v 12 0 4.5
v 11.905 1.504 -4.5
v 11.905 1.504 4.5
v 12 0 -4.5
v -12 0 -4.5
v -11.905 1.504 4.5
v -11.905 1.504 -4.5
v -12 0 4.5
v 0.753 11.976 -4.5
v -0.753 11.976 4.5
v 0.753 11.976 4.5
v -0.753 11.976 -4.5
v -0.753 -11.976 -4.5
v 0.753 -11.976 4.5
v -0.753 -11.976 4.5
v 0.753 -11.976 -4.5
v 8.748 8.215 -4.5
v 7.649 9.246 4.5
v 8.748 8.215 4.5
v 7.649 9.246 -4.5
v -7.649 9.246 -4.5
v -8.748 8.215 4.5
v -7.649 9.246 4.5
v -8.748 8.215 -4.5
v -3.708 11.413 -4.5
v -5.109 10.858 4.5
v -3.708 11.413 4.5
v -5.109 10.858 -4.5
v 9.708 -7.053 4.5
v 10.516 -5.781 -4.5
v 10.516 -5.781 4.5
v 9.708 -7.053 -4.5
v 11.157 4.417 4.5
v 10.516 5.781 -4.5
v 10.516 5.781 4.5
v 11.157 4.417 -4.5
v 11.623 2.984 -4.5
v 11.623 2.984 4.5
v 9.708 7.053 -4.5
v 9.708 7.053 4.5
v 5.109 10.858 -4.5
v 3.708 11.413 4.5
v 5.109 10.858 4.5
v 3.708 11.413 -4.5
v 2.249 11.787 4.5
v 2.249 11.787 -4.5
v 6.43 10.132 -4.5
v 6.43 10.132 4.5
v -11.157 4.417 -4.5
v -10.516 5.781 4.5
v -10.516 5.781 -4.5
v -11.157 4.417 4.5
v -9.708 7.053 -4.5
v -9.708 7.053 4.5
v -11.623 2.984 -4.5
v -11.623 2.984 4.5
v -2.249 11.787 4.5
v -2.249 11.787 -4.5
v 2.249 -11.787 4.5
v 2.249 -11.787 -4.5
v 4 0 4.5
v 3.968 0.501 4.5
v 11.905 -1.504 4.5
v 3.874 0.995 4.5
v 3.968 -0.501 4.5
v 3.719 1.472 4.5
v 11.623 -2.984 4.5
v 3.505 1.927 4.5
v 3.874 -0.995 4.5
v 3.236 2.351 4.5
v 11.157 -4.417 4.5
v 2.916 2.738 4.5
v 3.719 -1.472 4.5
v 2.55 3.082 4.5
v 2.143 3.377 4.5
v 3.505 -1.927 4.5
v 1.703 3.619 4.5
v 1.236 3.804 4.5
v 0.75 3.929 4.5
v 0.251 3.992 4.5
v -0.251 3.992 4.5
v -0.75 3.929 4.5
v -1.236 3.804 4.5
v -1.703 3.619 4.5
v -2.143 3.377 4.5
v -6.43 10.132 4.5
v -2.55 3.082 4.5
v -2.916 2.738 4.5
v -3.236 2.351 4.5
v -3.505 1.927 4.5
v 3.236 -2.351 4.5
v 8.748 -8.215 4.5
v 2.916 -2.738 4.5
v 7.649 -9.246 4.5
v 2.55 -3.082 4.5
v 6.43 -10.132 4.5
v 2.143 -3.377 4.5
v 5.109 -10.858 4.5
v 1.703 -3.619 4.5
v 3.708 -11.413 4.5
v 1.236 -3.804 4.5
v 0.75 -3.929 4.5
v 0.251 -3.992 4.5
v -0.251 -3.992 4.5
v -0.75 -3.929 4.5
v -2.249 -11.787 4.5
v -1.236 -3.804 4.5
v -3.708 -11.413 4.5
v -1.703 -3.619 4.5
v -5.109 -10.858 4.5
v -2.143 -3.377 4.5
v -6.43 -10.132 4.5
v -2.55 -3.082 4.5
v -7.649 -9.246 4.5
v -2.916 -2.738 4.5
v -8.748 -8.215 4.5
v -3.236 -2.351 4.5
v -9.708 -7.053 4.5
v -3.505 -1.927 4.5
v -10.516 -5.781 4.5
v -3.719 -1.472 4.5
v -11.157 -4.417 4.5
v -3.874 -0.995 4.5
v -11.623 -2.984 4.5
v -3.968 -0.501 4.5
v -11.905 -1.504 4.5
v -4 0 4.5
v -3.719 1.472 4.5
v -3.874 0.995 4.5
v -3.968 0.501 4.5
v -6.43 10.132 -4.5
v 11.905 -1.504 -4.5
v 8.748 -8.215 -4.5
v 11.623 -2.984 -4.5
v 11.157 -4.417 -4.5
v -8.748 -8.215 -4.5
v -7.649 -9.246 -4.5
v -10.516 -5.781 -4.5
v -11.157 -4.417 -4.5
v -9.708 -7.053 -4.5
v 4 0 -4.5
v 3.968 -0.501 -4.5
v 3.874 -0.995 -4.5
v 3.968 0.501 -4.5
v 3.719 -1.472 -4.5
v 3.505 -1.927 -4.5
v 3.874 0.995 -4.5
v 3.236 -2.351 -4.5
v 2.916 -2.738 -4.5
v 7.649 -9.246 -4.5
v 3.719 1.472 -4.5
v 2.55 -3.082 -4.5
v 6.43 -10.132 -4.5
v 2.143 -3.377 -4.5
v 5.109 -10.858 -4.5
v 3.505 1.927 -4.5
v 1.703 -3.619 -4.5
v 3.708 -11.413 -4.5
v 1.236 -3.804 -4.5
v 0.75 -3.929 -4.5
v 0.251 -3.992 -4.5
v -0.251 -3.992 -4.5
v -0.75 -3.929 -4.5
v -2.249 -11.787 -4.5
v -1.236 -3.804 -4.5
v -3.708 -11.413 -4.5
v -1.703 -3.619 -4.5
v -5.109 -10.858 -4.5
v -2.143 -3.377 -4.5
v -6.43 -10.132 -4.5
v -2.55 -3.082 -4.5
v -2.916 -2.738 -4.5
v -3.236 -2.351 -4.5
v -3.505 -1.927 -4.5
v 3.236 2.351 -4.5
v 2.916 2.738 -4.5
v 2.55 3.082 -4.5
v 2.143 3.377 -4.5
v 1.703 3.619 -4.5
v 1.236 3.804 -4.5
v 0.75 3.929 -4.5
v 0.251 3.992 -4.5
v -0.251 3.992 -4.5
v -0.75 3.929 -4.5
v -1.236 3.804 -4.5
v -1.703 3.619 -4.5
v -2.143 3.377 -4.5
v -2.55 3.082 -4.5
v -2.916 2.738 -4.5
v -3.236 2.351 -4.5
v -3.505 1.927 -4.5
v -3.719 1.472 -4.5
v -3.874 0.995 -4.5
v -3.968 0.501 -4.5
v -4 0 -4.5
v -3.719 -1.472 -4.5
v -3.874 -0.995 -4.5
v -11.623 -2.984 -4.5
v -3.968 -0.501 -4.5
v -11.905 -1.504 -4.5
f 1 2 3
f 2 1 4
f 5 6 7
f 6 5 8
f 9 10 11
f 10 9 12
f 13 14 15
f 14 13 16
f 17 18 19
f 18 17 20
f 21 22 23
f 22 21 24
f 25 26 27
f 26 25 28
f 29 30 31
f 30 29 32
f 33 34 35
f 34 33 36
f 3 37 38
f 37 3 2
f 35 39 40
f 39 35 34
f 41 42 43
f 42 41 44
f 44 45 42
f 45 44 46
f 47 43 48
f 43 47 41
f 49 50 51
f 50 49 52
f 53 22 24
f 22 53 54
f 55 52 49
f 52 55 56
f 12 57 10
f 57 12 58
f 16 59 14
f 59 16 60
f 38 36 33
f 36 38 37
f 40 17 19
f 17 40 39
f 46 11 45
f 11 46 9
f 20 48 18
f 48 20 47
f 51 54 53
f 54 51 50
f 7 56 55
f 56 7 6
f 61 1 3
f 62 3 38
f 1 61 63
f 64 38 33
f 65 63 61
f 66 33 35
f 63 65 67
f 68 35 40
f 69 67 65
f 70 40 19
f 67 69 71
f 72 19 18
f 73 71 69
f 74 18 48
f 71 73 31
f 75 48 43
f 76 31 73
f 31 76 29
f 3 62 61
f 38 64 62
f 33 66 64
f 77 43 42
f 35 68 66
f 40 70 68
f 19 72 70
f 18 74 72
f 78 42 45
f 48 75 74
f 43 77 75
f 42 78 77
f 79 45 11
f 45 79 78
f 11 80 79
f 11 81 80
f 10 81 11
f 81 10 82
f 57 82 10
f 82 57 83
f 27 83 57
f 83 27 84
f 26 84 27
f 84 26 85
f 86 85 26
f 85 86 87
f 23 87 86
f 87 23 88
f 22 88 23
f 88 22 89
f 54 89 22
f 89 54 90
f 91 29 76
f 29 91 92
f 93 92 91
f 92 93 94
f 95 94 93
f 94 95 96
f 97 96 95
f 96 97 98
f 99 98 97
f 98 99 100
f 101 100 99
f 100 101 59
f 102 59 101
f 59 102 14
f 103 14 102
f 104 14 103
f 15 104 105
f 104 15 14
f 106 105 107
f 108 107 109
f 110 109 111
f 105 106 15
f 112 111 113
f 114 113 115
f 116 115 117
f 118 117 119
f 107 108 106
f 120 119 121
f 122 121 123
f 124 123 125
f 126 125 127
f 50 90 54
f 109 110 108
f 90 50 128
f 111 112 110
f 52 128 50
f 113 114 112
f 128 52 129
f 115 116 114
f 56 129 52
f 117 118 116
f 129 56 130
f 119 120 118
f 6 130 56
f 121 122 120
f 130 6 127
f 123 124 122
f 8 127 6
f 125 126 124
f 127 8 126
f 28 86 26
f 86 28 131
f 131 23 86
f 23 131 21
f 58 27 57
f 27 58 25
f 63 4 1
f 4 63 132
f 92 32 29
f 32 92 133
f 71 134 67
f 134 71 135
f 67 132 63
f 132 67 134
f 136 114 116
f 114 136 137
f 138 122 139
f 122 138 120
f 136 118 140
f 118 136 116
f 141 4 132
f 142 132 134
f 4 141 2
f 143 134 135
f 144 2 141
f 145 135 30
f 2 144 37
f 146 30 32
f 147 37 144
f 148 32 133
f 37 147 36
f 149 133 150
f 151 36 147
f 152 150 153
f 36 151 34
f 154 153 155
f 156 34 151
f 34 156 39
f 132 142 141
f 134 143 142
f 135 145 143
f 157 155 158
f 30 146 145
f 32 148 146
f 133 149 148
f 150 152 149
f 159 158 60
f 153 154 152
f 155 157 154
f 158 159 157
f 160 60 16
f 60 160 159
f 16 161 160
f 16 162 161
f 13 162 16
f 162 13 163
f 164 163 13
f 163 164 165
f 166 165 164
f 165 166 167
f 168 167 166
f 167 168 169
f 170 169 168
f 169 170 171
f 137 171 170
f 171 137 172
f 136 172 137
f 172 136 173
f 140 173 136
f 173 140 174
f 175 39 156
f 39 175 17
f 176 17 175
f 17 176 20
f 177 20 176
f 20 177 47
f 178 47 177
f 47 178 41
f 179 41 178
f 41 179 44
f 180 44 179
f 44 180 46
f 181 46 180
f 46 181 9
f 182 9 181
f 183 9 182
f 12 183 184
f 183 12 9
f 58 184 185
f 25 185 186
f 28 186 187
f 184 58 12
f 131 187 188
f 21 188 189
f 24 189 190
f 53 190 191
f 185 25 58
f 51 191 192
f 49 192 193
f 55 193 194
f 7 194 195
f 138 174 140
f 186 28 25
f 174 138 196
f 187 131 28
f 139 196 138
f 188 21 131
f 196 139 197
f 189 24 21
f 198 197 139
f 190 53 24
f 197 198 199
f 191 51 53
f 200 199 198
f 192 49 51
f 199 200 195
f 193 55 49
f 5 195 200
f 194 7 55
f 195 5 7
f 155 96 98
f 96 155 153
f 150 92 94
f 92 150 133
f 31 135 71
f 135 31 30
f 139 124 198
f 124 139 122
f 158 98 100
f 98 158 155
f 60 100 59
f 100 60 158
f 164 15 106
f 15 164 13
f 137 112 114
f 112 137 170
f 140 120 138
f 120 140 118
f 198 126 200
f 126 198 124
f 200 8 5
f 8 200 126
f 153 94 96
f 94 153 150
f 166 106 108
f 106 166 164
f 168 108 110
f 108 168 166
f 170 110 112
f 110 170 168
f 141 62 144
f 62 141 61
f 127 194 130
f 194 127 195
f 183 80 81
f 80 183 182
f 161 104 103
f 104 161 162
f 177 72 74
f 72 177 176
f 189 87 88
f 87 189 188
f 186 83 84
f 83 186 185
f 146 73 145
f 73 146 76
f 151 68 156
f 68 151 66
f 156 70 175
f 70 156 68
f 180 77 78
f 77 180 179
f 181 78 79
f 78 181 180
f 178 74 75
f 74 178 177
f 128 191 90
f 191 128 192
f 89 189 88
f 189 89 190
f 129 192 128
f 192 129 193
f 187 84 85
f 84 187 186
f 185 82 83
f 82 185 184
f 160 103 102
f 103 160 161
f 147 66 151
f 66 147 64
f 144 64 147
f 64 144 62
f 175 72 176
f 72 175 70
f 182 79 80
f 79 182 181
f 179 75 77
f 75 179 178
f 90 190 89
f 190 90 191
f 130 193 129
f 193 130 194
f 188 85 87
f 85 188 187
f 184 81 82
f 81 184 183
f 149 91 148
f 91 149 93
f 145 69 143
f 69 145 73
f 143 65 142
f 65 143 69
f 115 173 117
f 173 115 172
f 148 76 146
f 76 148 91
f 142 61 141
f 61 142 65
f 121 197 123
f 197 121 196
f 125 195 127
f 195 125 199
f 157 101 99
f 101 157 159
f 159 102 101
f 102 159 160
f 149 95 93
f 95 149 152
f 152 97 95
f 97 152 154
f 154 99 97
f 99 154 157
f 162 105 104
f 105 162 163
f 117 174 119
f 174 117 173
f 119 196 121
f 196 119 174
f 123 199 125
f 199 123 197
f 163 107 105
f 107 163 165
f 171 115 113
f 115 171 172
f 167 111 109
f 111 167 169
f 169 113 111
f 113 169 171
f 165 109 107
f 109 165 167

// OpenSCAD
$fn = 50;


difference() {
	union() {
		translate(v = [0, 0, -4.5000000000]) {
			cylinder(h = 9, r = 12.0000000000);
		}
	}
	union() {
		translate(v = [0, 0, -100.0000000000]) {
			cylinder(h = 200, r = 4);
		}
	}
}
